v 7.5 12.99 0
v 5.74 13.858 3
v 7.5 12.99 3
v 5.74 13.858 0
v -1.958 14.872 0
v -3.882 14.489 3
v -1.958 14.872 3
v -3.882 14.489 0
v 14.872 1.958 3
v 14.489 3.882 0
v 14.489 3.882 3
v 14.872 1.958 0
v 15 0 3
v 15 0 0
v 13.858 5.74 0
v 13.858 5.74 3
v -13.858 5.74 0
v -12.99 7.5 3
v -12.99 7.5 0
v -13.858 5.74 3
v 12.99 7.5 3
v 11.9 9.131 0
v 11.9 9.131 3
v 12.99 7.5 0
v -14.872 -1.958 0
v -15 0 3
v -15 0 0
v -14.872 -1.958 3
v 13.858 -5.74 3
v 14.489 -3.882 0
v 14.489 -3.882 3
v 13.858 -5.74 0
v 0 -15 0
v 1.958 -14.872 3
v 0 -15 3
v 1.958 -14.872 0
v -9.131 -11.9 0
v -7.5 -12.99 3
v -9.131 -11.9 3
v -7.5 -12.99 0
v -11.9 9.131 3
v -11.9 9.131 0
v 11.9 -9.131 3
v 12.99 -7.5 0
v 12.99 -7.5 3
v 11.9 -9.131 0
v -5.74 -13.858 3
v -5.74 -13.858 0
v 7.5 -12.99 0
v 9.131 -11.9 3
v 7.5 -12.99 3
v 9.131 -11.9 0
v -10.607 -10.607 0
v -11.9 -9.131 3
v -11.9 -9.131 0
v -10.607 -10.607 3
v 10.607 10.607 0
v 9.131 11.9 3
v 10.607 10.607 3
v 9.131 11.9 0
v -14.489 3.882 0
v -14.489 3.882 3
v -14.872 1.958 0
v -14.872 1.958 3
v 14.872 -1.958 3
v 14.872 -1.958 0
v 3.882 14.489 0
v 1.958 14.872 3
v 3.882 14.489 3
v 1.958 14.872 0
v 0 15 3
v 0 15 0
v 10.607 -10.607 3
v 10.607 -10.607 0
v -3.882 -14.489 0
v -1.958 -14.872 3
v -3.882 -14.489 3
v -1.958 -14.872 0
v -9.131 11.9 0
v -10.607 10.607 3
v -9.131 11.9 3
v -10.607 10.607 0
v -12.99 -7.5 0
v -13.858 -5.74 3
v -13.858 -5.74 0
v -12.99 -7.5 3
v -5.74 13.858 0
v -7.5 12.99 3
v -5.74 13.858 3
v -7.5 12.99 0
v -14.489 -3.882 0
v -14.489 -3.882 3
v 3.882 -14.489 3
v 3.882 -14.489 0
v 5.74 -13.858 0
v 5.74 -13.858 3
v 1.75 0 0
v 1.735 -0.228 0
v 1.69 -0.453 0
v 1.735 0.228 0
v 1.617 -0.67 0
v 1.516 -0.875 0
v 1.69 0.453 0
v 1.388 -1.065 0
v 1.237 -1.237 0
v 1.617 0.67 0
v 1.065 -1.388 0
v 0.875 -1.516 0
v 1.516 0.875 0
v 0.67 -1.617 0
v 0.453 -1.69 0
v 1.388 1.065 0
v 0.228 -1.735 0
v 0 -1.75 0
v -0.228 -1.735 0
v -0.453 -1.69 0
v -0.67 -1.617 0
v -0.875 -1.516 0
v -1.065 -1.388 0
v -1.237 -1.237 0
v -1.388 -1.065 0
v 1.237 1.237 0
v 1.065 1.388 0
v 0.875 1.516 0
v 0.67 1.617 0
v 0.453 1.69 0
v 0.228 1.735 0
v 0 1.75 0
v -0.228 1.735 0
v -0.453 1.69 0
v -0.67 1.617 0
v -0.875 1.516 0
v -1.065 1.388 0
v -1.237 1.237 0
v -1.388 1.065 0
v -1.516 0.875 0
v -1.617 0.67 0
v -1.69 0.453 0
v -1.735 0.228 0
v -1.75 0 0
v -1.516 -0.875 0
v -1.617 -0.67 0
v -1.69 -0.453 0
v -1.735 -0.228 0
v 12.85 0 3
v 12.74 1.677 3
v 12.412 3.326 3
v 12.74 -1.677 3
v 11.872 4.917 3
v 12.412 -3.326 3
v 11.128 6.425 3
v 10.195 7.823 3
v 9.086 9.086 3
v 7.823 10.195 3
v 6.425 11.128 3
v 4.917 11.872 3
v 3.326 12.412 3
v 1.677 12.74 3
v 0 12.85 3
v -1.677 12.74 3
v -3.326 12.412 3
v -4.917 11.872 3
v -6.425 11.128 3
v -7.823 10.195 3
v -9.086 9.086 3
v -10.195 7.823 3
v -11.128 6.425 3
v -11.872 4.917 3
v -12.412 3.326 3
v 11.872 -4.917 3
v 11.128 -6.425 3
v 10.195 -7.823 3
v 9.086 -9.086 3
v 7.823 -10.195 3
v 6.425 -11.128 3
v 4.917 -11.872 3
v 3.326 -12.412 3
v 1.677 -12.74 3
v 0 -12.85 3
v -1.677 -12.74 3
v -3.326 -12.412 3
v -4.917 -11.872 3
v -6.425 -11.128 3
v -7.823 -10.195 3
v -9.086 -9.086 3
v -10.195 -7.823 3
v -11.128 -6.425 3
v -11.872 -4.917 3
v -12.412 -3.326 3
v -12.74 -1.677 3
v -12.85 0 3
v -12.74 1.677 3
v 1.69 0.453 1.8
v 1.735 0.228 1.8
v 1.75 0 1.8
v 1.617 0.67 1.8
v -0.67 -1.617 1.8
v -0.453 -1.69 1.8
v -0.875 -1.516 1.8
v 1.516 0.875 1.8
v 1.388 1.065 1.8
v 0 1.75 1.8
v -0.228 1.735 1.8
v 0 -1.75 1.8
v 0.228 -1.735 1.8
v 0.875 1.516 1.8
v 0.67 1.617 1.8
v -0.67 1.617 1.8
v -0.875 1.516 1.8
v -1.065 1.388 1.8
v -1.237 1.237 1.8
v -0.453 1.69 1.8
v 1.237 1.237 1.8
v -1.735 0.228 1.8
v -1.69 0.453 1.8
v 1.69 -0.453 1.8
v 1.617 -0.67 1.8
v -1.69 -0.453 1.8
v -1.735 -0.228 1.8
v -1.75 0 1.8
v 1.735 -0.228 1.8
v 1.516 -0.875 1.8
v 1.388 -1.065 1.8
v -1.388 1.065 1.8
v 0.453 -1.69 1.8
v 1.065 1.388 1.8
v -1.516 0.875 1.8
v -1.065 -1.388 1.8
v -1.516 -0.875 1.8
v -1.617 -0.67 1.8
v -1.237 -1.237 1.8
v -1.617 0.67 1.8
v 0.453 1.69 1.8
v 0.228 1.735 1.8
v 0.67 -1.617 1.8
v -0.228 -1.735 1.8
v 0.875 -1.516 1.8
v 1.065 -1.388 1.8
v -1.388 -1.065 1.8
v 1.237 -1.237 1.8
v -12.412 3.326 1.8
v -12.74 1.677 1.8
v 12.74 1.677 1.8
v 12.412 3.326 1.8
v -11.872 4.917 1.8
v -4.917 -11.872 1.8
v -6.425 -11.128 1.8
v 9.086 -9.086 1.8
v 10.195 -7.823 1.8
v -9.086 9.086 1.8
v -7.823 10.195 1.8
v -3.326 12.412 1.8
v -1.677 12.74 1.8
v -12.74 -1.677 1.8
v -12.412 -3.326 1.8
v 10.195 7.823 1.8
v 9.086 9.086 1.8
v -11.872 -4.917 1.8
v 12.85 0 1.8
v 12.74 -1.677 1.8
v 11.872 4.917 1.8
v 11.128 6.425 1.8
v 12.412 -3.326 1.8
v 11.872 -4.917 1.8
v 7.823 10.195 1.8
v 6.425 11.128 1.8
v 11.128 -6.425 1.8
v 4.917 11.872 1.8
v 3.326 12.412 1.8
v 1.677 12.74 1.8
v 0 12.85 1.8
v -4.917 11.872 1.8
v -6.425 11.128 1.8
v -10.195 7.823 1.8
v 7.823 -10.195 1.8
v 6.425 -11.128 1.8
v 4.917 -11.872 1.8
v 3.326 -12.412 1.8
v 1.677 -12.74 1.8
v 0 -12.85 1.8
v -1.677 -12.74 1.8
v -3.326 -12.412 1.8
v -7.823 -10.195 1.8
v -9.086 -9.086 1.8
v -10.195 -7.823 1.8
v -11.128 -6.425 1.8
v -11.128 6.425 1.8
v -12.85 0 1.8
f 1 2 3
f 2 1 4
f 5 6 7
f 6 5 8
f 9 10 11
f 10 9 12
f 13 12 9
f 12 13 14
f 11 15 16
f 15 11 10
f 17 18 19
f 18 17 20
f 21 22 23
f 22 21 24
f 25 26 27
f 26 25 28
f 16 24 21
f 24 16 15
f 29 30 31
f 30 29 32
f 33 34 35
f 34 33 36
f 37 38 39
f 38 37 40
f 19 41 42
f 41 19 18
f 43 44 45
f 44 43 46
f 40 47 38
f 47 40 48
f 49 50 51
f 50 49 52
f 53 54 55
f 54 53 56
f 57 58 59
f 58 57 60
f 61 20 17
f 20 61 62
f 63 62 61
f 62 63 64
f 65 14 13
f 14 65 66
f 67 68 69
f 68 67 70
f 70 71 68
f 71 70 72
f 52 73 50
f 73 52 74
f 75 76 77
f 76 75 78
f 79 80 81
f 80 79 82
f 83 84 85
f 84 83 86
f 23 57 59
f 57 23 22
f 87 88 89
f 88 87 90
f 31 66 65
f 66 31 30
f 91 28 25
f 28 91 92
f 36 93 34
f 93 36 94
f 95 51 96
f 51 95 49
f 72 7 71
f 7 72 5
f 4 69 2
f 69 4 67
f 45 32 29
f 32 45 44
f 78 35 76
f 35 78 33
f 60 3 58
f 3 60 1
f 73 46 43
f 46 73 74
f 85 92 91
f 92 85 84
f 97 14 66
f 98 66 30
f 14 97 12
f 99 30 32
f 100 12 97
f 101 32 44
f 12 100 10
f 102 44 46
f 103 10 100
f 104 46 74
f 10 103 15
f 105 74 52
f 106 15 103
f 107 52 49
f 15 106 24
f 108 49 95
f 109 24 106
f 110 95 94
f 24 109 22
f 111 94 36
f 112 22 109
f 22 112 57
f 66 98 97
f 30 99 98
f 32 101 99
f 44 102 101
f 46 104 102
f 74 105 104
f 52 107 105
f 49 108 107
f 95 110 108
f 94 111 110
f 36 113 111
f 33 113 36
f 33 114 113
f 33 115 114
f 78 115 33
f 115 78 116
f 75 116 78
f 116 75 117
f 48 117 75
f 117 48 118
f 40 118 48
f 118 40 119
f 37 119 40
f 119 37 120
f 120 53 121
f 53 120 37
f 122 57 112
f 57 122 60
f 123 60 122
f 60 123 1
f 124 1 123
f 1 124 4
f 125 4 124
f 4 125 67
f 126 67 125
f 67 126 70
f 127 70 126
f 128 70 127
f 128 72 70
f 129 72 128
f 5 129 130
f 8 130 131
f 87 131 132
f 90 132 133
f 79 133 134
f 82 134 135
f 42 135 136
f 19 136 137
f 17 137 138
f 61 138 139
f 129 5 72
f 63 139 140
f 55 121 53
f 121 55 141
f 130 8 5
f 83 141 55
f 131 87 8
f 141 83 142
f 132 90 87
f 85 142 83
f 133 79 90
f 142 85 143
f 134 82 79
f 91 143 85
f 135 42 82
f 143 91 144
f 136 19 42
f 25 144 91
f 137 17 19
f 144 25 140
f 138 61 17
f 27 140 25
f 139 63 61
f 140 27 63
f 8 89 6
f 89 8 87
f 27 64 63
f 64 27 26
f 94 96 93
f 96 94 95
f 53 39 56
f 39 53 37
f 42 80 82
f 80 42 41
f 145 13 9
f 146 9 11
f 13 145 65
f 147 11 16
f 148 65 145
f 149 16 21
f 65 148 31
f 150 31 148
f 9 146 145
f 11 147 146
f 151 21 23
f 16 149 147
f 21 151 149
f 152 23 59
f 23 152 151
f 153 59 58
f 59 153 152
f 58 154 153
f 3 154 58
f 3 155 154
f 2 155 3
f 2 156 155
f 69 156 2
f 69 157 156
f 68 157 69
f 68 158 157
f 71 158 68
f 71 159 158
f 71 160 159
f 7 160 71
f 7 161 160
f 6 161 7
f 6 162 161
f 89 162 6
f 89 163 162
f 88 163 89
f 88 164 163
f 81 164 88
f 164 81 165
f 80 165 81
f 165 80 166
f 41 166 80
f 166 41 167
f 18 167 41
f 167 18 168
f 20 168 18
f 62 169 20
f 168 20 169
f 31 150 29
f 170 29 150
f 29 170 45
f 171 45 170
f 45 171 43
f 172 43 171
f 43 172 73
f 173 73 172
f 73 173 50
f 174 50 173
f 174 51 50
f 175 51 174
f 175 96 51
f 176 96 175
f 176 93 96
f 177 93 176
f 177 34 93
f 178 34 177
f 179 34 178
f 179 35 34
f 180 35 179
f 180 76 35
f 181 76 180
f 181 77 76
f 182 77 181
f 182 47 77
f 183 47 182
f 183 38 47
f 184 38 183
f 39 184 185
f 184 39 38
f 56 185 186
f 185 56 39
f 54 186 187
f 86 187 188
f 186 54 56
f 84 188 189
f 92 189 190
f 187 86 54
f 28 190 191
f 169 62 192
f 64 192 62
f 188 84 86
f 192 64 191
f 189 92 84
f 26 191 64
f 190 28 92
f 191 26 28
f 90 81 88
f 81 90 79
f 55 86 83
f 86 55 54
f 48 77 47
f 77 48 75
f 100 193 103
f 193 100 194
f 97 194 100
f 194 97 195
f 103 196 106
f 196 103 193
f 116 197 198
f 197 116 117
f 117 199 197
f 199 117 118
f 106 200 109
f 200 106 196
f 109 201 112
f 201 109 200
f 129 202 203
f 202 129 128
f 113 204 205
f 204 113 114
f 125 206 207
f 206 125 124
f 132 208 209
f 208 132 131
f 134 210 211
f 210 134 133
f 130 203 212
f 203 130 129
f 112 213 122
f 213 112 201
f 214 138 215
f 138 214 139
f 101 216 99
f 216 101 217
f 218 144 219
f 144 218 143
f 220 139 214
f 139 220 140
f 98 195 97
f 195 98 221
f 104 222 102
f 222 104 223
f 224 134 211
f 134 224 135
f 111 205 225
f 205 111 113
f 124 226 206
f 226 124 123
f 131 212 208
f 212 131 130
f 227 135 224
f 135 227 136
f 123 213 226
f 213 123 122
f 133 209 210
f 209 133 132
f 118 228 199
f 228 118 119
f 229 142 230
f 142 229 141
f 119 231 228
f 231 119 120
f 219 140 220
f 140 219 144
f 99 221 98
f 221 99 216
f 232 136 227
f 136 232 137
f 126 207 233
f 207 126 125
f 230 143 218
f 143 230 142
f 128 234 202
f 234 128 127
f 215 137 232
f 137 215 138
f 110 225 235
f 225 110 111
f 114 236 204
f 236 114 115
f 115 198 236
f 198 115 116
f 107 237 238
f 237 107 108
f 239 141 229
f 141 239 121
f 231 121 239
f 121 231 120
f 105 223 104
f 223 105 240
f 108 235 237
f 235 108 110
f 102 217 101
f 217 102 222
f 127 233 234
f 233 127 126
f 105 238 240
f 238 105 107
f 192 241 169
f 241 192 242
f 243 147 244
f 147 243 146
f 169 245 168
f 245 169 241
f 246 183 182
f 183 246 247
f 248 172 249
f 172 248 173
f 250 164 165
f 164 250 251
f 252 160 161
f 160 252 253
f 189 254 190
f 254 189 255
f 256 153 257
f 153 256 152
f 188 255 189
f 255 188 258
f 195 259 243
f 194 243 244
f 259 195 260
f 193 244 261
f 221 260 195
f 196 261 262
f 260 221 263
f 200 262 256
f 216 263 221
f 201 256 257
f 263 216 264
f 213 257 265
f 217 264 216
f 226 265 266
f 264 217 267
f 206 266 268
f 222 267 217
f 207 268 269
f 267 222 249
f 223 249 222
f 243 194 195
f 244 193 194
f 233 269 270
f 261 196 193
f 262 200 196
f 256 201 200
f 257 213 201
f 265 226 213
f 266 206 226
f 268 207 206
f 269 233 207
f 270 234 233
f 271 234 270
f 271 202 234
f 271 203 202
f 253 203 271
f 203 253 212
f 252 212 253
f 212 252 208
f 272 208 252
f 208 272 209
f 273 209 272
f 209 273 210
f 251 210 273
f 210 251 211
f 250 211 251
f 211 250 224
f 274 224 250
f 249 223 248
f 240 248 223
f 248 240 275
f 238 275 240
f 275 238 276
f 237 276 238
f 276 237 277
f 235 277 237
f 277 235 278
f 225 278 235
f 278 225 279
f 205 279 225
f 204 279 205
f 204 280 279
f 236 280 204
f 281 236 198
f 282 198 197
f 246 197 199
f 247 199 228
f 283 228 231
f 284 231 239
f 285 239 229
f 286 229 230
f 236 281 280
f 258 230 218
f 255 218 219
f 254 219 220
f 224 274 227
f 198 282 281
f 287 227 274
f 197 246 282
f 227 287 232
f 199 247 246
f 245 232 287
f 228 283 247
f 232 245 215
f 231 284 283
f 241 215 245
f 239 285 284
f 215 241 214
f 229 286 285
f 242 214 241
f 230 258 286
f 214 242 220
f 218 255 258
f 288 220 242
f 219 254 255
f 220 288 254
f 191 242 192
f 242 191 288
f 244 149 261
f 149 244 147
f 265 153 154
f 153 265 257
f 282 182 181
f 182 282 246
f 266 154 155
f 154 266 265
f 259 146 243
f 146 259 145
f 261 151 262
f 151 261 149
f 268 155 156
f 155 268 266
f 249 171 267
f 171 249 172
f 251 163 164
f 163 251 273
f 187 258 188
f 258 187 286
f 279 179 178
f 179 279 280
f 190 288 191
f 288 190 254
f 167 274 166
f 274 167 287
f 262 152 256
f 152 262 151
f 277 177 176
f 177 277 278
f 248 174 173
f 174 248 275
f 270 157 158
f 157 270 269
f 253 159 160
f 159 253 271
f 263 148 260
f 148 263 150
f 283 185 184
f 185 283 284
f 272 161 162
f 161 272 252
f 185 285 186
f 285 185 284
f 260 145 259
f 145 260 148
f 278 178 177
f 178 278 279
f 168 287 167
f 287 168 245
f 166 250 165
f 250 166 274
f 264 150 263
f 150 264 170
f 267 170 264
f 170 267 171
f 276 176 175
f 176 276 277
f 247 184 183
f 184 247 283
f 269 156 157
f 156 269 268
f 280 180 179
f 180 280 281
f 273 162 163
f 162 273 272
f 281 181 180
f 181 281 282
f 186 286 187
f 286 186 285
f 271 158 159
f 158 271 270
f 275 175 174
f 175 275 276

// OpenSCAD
// file: parameters.scad
// =============================================================================
// Gen-U Vernier + flux-claw AFPM — WOUND-AWARE (HARD GATE)
// 16-pole rotor (16×Ø20) + 48×Ø5 claw/edge flux assists; 12-coil vernier stator
// Optional mild-steel washer registers in BOM for claw return paths.
// =============================================================================

wire_awg            = 26;
wire_od             = 0.45;
turns               = 140;      // vernier: more turns for low-RPM band
fill                = 0.70;
layers_per_face     = 2;
wind_build_axial    = layers_per_face * wire_od * fill;   // 0.63
wind_build_radial   = 3 * wire_od * fill;                 // 0.945

coil_id_r           = 22.0;
coil_od_r           = 58.0;
span_deg            = 24.0;     // 12 stations; vernier vs 16 poles
former_web          = 2.6;
flange_t            = 0.9;
wall                = 1.2;
slot_w              = 2.4;
mount_hole          = 3.5;
tab_len             = 7.0;

former_bare_h       = former_web + 2 * flange_t;            // 4.4
coil_envelope_h     = former_bare_h + 2 * wind_build_axial; // 5.66

run_clear           = 0.85;     // prefer ≥0.85 for vernier stack
gap_spacer_h        = run_clear + wind_build_axial;         // 1.48
// Single-rotor AFPM: magnet ↔ wound = run_clear (spacer math)
// (No dual-rotor m2m; stator faces one magnet plane)

coil_stations       = 12;
bay_r_in            = coil_id_r - 2.0 - wind_build_radial;
bay_r_out           = coil_od_r + 2.0 + wind_build_radial;
bay_span            = span_deg + 4.0;
bay_offset          = 2.0;
bay_depth           = former_bare_h + wind_build_axial;
stator_back_web     = 2.5;
stator_thick        = bay_depth + stator_back_web;
stator_od           = 156.0;
shaft_clear_stator  = 36.0;
coil_mount_r        = 28.0;

// Rotor: ALL 16×Ø20 as poles + 48×Ø5 claw/edge (3 rings × 16)
large_pocket_d      = 20.3;
small_pocket_d      = 5.3;
pocket_h            = 5.2;
large_n             = 16;       // vernier poles
R_large             = 50.0;
R_claw_inner        = 36.0;     // flux-claw / edge assist rings
R_claw_mid          = 50.0;
R_claw_outer        = 64.0;
carrier_od          = 152.0;
carrier_thick       = 8.0;
hub_h               = 10.0;
hub_od              = 30.0;
// Steel return register pocket (optional washer Ø25×1)
steel_washer_d      = 25.4;
steel_washer_pocket = 1.2;
steel_register_r    = 50.0;

shaft_bore          = 8.35;
bearing_d           = 21.85;
bearing_h           = 7.2;
m3_clear            = 3.5;
bolt_r_inner        = 36.0;
bolt_n_inner        = 6;
flange_bolt_r       = 72.0;
flange_bolt_n       = 6;
brace_r             = 68.0;
brace_d             = 4.3;
brace_n             = 4;

spacer_pad_od       = 14.0;
spacer_pad_id       = m3_clear;
endbell_od          = 156.0;
endbell_thick       = 8.0;
endbell_shaft_clear = 10.0;

// Claw flux pad (printed) — seats optional steel washer behind rotor
claw_pad_od         = 30.0;
claw_pad_h          = 3.0;

$fn = 64;
// main file
// Gen-U claw flux pad — optional spacer under steel washer; print ×8
include <parameters.scad>;
$fn = 48;
difference() {
    cylinder(d=claw_pad_od, h=claw_pad_h);
    translate([0, 0, -0.1]) cylinder(d=m3_clear, h=claw_pad_h + 0.2);
    translate([0, 0, claw_pad_h - steel_washer_pocket])
        cylinder(d=steel_washer_d + 0.3, h=steel_washer_pocket + 0.1);
}
